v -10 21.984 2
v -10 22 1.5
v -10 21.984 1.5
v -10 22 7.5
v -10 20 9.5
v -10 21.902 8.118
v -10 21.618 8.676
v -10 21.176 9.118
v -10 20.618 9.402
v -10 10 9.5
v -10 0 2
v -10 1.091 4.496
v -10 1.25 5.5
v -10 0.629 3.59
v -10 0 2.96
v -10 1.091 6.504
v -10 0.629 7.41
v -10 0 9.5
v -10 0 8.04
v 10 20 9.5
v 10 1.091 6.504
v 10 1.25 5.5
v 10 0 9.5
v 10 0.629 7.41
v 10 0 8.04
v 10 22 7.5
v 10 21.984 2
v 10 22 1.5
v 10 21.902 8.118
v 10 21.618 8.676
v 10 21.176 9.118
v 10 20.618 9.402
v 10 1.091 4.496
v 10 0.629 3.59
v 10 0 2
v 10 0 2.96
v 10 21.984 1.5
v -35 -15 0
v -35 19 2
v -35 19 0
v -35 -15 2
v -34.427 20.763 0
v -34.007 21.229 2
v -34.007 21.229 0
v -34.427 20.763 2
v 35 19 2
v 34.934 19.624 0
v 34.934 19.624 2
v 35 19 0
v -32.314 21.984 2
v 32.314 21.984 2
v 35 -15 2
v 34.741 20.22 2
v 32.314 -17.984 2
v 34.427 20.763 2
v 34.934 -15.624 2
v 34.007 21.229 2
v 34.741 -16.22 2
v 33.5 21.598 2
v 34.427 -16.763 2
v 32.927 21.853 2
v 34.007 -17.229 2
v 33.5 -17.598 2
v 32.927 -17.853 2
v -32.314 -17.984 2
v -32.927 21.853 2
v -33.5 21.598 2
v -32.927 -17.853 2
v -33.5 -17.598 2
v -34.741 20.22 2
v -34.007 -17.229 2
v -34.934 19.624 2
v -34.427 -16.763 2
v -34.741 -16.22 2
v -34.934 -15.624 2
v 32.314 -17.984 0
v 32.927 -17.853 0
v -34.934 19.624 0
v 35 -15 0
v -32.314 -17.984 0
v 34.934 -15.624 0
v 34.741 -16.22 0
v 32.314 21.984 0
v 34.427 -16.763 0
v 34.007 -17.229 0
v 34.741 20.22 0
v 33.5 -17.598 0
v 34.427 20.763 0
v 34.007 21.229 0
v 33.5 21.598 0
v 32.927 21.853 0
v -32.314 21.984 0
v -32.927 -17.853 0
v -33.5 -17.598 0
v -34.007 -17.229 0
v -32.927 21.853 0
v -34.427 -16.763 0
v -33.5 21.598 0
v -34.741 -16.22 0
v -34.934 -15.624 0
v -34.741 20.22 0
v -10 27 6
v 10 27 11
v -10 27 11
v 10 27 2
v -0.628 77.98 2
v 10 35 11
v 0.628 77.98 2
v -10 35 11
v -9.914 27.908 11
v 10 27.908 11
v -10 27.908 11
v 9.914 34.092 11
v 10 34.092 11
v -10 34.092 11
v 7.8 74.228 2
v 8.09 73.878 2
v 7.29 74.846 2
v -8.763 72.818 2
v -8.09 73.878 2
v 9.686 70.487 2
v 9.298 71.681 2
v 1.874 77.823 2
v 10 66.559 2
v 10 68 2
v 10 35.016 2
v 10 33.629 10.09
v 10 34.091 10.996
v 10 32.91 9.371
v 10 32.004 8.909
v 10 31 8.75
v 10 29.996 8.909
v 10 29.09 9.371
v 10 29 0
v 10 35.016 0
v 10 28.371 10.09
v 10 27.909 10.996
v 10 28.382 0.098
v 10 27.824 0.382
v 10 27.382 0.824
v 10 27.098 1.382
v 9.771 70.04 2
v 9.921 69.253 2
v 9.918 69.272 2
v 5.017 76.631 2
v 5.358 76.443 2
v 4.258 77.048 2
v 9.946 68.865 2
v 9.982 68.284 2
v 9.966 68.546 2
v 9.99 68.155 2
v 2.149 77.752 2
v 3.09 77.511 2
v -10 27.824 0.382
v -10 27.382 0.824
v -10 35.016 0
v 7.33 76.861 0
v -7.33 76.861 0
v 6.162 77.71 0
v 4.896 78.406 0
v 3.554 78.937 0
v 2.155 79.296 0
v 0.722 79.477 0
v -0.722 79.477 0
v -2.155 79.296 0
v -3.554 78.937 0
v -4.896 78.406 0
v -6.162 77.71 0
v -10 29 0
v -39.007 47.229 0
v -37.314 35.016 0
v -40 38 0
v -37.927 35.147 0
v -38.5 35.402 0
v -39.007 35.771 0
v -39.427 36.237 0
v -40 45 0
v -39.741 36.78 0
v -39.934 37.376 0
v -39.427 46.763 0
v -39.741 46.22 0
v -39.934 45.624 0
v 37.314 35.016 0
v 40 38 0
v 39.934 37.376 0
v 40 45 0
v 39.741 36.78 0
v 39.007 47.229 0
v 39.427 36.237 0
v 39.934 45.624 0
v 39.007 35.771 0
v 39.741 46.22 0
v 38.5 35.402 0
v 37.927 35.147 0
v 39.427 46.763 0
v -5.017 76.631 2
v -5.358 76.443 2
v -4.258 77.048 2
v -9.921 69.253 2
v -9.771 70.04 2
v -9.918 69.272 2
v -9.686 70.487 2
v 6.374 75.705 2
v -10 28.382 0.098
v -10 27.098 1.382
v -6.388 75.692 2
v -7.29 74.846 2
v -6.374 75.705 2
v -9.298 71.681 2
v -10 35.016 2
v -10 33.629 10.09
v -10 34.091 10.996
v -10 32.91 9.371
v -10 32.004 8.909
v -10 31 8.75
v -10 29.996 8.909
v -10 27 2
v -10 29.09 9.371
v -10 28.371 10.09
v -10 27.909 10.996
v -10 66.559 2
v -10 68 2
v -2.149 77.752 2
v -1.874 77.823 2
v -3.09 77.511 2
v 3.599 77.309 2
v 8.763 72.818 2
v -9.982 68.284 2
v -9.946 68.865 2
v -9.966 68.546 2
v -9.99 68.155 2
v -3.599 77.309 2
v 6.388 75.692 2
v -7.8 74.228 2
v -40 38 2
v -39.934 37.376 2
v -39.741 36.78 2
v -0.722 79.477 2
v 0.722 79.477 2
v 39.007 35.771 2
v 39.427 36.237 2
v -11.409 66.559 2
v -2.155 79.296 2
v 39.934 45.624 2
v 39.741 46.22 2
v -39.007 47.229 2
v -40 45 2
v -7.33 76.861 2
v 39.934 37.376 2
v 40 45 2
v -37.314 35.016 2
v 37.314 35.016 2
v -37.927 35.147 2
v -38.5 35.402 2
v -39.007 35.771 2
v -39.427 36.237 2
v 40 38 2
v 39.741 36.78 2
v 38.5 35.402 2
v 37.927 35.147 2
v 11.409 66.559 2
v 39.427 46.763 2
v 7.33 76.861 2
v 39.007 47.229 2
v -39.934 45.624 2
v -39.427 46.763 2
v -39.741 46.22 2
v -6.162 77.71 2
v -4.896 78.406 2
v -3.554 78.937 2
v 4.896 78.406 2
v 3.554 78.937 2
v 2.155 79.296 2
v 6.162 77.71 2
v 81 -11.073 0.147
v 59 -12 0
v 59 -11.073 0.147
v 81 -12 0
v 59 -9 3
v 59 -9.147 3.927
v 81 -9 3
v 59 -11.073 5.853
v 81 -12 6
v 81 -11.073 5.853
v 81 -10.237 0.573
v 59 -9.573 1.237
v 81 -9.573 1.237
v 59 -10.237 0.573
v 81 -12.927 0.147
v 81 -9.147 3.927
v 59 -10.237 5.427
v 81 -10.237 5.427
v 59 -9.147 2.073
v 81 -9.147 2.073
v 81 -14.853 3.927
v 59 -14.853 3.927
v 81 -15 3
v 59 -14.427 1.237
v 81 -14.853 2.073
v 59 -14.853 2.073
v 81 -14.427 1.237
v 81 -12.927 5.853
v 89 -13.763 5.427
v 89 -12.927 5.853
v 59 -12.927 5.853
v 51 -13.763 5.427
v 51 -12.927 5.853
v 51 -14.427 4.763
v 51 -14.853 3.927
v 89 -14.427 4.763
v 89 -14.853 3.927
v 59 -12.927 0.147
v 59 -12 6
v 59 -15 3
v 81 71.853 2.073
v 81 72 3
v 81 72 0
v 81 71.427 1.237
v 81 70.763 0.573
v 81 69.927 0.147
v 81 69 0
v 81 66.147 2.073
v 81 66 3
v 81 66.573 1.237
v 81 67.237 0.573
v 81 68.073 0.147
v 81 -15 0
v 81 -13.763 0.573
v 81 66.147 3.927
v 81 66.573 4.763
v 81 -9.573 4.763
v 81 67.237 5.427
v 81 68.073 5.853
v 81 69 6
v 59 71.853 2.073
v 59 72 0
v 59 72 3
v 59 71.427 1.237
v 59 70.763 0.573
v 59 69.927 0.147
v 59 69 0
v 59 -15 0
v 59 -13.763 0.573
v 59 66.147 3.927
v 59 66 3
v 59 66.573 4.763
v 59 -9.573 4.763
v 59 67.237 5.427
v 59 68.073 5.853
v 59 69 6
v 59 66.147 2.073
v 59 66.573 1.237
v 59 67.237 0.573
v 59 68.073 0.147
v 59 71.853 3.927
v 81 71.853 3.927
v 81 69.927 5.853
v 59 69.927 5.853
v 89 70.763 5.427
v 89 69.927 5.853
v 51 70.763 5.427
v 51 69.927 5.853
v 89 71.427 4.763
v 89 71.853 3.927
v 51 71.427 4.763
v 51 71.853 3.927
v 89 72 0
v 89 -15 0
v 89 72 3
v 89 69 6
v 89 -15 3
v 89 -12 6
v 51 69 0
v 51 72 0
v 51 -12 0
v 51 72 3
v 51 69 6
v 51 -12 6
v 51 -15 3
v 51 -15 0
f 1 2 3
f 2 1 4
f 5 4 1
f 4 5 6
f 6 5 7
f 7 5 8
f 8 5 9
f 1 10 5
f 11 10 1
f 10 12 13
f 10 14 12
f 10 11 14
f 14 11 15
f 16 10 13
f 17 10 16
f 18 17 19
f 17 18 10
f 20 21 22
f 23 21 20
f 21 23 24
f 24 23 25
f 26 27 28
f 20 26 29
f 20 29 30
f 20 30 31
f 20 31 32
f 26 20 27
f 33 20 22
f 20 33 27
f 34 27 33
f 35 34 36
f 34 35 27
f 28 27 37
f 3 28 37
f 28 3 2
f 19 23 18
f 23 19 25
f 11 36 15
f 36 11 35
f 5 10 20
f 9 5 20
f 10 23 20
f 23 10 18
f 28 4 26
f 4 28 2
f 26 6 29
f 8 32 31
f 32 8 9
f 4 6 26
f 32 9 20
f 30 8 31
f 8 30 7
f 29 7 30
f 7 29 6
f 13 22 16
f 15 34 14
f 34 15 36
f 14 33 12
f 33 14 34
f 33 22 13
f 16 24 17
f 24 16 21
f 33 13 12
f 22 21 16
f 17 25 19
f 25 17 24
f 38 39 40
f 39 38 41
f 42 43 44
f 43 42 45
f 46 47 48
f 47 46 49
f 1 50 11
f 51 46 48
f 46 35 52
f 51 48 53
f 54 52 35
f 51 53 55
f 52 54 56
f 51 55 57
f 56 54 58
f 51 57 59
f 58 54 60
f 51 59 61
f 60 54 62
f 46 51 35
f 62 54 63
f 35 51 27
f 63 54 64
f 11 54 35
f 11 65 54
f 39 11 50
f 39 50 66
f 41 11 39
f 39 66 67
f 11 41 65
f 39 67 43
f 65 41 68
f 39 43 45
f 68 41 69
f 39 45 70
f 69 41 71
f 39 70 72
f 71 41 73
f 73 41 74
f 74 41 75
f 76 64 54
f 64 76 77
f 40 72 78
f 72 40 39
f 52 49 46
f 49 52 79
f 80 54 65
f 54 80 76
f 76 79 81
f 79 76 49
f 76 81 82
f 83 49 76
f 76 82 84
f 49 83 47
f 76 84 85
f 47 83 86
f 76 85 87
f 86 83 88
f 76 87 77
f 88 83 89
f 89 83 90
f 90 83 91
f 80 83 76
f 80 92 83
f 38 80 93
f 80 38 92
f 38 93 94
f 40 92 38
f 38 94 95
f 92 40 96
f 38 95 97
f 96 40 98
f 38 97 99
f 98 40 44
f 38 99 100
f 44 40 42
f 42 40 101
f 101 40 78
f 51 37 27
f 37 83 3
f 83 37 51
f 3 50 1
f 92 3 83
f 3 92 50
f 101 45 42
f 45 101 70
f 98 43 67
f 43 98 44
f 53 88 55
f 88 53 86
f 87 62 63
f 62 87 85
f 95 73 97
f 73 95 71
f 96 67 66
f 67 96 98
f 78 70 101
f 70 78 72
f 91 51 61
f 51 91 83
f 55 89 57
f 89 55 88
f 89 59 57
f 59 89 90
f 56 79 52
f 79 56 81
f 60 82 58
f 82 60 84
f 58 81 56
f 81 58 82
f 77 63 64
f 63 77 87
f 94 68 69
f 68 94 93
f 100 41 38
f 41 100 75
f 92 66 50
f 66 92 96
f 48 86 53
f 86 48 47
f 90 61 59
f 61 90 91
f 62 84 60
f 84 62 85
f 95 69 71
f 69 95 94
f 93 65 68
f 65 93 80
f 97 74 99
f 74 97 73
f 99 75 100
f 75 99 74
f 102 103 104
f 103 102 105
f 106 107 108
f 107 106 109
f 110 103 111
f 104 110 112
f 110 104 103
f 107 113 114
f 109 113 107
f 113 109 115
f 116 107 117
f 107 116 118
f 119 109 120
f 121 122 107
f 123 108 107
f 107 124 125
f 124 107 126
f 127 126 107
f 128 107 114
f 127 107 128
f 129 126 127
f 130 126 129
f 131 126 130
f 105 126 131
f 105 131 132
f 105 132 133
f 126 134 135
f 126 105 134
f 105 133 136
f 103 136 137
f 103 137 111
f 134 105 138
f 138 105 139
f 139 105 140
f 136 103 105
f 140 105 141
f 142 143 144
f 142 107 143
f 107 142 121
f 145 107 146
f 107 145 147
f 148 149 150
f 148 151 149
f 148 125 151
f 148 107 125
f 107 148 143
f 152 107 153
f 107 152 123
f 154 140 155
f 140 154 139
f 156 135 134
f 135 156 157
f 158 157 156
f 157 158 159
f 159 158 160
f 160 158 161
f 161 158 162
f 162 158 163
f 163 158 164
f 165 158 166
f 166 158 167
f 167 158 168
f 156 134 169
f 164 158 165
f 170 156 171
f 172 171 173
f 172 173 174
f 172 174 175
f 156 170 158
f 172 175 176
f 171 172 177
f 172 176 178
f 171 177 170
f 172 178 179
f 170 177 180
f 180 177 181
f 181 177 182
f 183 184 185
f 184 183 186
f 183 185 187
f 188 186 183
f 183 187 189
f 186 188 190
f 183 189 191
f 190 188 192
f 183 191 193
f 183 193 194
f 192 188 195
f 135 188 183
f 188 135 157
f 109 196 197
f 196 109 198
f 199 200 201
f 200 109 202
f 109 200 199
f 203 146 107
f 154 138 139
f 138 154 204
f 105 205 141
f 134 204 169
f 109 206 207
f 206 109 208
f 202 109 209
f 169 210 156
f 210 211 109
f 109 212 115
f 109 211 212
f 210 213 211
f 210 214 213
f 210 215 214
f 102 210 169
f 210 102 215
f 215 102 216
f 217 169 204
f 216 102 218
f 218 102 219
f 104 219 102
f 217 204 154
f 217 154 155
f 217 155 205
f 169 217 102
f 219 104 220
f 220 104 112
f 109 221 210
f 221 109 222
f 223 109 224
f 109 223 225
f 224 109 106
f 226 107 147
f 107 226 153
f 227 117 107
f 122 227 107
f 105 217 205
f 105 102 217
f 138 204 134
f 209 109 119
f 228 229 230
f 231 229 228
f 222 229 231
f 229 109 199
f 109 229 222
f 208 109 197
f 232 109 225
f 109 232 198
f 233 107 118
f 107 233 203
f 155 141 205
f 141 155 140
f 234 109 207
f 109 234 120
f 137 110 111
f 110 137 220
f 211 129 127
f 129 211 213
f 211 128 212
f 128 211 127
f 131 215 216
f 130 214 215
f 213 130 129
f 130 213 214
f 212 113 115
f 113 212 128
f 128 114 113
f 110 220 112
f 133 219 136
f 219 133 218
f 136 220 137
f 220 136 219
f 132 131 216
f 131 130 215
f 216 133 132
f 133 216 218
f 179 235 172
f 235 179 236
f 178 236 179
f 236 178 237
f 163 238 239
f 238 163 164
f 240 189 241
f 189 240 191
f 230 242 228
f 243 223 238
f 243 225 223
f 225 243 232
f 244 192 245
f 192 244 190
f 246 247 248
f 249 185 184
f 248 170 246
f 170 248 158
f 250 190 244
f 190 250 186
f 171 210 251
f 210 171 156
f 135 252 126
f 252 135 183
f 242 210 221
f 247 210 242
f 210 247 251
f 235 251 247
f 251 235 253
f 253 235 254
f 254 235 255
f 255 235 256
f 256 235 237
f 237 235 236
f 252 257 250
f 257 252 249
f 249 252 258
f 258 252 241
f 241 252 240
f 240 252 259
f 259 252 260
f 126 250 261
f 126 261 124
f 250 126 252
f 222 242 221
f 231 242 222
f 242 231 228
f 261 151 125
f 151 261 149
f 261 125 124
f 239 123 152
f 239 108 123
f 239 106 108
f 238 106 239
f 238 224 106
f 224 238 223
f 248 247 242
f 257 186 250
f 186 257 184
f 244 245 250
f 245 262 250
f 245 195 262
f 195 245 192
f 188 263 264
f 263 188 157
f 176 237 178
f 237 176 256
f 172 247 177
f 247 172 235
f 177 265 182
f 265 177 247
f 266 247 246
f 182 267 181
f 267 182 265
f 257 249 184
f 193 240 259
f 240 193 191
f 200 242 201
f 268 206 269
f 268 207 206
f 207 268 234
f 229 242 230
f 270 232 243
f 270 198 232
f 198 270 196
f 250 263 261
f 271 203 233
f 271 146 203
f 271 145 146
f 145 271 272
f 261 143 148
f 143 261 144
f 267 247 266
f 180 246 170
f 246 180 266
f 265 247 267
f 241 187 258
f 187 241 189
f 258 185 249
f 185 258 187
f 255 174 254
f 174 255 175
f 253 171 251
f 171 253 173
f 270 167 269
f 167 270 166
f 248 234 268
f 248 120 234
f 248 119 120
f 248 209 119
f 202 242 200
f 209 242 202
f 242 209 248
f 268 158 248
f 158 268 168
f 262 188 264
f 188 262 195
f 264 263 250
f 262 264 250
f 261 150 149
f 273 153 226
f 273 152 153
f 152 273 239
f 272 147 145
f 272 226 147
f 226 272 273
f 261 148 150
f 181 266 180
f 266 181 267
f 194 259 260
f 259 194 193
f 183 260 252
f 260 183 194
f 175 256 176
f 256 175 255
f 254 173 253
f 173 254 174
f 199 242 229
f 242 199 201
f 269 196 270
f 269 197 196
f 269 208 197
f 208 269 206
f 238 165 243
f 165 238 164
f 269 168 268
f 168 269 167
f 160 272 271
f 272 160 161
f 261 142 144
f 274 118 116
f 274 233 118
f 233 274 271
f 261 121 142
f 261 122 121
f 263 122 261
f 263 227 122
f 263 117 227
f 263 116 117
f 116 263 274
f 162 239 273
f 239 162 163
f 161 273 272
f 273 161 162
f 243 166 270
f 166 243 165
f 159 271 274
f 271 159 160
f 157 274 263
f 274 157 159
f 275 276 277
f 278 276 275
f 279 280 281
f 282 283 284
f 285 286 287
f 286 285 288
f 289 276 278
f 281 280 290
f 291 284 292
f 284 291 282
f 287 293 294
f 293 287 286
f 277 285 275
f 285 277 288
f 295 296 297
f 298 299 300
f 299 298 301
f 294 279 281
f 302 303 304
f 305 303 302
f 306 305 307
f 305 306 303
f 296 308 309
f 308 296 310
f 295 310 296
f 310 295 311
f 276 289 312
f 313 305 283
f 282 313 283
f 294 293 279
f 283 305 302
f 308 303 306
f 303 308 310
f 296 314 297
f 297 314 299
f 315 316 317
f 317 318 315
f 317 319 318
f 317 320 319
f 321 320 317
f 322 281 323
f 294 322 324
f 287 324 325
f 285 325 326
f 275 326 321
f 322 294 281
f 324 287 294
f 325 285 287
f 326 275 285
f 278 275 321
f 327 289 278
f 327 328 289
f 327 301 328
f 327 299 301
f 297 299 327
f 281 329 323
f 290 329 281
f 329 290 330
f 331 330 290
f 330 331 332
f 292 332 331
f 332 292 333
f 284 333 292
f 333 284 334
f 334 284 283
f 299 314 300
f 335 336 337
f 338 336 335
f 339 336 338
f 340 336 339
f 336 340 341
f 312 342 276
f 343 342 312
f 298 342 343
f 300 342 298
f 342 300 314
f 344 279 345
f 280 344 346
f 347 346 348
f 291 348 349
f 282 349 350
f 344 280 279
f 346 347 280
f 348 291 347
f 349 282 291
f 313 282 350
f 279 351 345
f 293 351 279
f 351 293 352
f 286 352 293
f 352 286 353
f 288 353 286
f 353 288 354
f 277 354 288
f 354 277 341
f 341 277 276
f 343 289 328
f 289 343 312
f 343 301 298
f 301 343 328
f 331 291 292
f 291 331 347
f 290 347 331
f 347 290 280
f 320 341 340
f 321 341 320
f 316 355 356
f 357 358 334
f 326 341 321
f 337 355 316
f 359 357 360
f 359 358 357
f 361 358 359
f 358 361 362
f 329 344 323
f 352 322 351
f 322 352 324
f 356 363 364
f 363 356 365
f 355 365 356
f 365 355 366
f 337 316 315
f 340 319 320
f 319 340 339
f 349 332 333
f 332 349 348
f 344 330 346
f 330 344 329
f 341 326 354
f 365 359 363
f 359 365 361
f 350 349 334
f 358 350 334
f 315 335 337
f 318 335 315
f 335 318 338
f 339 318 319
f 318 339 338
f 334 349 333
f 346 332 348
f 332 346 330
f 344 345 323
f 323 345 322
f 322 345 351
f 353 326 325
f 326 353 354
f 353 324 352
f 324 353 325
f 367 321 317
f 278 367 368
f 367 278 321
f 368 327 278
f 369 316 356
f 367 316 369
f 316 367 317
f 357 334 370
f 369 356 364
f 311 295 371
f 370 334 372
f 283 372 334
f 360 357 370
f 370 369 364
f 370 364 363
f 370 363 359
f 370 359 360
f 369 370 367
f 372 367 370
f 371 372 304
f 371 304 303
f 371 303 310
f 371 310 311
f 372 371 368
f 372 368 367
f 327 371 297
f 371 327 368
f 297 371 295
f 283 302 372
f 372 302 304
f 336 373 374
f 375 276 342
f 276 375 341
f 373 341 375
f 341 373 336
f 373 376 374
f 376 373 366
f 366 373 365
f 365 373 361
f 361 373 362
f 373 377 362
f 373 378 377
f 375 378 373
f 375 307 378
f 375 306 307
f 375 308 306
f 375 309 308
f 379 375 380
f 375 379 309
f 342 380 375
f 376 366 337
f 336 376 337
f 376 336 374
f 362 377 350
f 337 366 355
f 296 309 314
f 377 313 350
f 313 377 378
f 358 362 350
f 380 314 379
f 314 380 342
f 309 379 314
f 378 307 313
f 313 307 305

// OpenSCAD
lockWidth=20;
lockDiam=6;
coverThick=45;

PRINT=1;
PRINTONLYJOINT=0;


if(PRINT==1){
    if(PRINTONLYJOINT!=1){
        translate([0,0,1.5])lockSide();
        translate([0,35,0])rotate([90,0,0])lockUp();
    }
    translate([70,-10,-1])traat();
}else{
    lockSide();
    translate([0,coverThick+22,0])lockUp();
    traat();
}

module lockSide(){
    difference(){
        hull(){
            translate([-lockWidth/2,0,0])cube([lockWidth,10,8]);
            translate([-lockWidth/2,20,0])cube([lockWidth,2,2]);
            translate([0,20,6])rotate([0,90,0])cylinder(d=4,h=lockWidth, center=true, $fn=20);
        }
        translate([0,-2,4])rotate([0,90,0])cylinder(d=lockDiam+0.5,h=lockWidth, center=true, $fn=20);
    }
    //translate([-(lockWidth+50)/2,-18,-1.5])cube([lockWidth+50,40,2]);
    hull(){
        translate([-(lockWidth+50)/2+3,-18+3,-1.5])cylinder(d=6,h=2,$fn=30);
        translate([(lockWidth+50)/2-3,-18+3,-1.5])cylinder(d=6,h=2,$fn=30);
        translate([-(lockWidth+50)/2+3,18+1,-1.5])cylinder(d=6,h=2,$fn=30);
        translate([(lockWidth+50)/2-3,18+1,-1.5])cylinder(d=6,h=2,$fn=30);
    }
}

module lockUp(){
    difference(){
        hull(){
            translate([-lockWidth/2,6,0])cube([lockWidth,5,8]);
        translate([0,2,-33])rotate([90,0,0])cylinder(d=20,h=2,$fn=50);
            translate([0,2,6])rotate([0,90,0])cylinder(d=4,h=lockWidth, center=true, $fn=20);
        }
        translate([0,12,4])rotate([0,90,0])cylinder(d=lockDiam+0.5,h=lockWidth, center=true, $fn=20);
    }
    hull(){
        translate([-(lockWidth+50)/2-2,2,-3])rotate([90,0,0])cylinder(d=6,h=2,$fn=30);
        translate([(lockWidth+50)/2+2,2,-3])rotate([90,0,0])cylinder(d=6,h=2,$fn=30);
        translate([-(lockWidth+50)/2-2,2,-10])rotate([90,0,0])cylinder(d=6,h=2,$fn=30);
        translate([(lockWidth+50)/2+2,2,-10])rotate([90,0,0])cylinder(d=6,h=2,$fn=30);
        translate([0,2,-33])rotate([90,0,0])cylinder(d=23,h=2,$fn=50);
    }
}

module traat(){
    translate([0,-2,4])rotate([0,90,0])cylinder(d=lockDiam,h=lockWidth+2, center=true, $fn=20);

    translate([0,coverThick+34,4])rotate([0,90,0])cylinder(d=lockDiam,h=lockWidth+2, center=true, $fn=20);
    
    translate([15,0,0])hull(){
        translate([0,-2,4])rotate([0,90,0])cylinder(d=lockDiam,h=8, center=true, $fn=20);
        translate([0,coverThick+34,4])rotate([0,90,0])cylinder(d=lockDiam,h=8, center=true, $fn=20);
        translate([0,coverThick+34-1,2])cube([8,8,2],true);
        translate([0,-1,2])cube([8,8,2],true);
    }

    translate([-15,0,0])hull(){
        translate([0,-2,4])rotate([0,90,0])cylinder(d=lockDiam,h=8, center=true, $fn=20);
        translate([0,coverThick+34,4])rotate([0,90,0])cylinder(d=lockDiam,h=8, center=true, $fn=20);
        translate([0,coverThick+34-1,2])cube([8,8,2],true);
        translate([0,-1,2])cube([8,8,2],true);
    }

}
